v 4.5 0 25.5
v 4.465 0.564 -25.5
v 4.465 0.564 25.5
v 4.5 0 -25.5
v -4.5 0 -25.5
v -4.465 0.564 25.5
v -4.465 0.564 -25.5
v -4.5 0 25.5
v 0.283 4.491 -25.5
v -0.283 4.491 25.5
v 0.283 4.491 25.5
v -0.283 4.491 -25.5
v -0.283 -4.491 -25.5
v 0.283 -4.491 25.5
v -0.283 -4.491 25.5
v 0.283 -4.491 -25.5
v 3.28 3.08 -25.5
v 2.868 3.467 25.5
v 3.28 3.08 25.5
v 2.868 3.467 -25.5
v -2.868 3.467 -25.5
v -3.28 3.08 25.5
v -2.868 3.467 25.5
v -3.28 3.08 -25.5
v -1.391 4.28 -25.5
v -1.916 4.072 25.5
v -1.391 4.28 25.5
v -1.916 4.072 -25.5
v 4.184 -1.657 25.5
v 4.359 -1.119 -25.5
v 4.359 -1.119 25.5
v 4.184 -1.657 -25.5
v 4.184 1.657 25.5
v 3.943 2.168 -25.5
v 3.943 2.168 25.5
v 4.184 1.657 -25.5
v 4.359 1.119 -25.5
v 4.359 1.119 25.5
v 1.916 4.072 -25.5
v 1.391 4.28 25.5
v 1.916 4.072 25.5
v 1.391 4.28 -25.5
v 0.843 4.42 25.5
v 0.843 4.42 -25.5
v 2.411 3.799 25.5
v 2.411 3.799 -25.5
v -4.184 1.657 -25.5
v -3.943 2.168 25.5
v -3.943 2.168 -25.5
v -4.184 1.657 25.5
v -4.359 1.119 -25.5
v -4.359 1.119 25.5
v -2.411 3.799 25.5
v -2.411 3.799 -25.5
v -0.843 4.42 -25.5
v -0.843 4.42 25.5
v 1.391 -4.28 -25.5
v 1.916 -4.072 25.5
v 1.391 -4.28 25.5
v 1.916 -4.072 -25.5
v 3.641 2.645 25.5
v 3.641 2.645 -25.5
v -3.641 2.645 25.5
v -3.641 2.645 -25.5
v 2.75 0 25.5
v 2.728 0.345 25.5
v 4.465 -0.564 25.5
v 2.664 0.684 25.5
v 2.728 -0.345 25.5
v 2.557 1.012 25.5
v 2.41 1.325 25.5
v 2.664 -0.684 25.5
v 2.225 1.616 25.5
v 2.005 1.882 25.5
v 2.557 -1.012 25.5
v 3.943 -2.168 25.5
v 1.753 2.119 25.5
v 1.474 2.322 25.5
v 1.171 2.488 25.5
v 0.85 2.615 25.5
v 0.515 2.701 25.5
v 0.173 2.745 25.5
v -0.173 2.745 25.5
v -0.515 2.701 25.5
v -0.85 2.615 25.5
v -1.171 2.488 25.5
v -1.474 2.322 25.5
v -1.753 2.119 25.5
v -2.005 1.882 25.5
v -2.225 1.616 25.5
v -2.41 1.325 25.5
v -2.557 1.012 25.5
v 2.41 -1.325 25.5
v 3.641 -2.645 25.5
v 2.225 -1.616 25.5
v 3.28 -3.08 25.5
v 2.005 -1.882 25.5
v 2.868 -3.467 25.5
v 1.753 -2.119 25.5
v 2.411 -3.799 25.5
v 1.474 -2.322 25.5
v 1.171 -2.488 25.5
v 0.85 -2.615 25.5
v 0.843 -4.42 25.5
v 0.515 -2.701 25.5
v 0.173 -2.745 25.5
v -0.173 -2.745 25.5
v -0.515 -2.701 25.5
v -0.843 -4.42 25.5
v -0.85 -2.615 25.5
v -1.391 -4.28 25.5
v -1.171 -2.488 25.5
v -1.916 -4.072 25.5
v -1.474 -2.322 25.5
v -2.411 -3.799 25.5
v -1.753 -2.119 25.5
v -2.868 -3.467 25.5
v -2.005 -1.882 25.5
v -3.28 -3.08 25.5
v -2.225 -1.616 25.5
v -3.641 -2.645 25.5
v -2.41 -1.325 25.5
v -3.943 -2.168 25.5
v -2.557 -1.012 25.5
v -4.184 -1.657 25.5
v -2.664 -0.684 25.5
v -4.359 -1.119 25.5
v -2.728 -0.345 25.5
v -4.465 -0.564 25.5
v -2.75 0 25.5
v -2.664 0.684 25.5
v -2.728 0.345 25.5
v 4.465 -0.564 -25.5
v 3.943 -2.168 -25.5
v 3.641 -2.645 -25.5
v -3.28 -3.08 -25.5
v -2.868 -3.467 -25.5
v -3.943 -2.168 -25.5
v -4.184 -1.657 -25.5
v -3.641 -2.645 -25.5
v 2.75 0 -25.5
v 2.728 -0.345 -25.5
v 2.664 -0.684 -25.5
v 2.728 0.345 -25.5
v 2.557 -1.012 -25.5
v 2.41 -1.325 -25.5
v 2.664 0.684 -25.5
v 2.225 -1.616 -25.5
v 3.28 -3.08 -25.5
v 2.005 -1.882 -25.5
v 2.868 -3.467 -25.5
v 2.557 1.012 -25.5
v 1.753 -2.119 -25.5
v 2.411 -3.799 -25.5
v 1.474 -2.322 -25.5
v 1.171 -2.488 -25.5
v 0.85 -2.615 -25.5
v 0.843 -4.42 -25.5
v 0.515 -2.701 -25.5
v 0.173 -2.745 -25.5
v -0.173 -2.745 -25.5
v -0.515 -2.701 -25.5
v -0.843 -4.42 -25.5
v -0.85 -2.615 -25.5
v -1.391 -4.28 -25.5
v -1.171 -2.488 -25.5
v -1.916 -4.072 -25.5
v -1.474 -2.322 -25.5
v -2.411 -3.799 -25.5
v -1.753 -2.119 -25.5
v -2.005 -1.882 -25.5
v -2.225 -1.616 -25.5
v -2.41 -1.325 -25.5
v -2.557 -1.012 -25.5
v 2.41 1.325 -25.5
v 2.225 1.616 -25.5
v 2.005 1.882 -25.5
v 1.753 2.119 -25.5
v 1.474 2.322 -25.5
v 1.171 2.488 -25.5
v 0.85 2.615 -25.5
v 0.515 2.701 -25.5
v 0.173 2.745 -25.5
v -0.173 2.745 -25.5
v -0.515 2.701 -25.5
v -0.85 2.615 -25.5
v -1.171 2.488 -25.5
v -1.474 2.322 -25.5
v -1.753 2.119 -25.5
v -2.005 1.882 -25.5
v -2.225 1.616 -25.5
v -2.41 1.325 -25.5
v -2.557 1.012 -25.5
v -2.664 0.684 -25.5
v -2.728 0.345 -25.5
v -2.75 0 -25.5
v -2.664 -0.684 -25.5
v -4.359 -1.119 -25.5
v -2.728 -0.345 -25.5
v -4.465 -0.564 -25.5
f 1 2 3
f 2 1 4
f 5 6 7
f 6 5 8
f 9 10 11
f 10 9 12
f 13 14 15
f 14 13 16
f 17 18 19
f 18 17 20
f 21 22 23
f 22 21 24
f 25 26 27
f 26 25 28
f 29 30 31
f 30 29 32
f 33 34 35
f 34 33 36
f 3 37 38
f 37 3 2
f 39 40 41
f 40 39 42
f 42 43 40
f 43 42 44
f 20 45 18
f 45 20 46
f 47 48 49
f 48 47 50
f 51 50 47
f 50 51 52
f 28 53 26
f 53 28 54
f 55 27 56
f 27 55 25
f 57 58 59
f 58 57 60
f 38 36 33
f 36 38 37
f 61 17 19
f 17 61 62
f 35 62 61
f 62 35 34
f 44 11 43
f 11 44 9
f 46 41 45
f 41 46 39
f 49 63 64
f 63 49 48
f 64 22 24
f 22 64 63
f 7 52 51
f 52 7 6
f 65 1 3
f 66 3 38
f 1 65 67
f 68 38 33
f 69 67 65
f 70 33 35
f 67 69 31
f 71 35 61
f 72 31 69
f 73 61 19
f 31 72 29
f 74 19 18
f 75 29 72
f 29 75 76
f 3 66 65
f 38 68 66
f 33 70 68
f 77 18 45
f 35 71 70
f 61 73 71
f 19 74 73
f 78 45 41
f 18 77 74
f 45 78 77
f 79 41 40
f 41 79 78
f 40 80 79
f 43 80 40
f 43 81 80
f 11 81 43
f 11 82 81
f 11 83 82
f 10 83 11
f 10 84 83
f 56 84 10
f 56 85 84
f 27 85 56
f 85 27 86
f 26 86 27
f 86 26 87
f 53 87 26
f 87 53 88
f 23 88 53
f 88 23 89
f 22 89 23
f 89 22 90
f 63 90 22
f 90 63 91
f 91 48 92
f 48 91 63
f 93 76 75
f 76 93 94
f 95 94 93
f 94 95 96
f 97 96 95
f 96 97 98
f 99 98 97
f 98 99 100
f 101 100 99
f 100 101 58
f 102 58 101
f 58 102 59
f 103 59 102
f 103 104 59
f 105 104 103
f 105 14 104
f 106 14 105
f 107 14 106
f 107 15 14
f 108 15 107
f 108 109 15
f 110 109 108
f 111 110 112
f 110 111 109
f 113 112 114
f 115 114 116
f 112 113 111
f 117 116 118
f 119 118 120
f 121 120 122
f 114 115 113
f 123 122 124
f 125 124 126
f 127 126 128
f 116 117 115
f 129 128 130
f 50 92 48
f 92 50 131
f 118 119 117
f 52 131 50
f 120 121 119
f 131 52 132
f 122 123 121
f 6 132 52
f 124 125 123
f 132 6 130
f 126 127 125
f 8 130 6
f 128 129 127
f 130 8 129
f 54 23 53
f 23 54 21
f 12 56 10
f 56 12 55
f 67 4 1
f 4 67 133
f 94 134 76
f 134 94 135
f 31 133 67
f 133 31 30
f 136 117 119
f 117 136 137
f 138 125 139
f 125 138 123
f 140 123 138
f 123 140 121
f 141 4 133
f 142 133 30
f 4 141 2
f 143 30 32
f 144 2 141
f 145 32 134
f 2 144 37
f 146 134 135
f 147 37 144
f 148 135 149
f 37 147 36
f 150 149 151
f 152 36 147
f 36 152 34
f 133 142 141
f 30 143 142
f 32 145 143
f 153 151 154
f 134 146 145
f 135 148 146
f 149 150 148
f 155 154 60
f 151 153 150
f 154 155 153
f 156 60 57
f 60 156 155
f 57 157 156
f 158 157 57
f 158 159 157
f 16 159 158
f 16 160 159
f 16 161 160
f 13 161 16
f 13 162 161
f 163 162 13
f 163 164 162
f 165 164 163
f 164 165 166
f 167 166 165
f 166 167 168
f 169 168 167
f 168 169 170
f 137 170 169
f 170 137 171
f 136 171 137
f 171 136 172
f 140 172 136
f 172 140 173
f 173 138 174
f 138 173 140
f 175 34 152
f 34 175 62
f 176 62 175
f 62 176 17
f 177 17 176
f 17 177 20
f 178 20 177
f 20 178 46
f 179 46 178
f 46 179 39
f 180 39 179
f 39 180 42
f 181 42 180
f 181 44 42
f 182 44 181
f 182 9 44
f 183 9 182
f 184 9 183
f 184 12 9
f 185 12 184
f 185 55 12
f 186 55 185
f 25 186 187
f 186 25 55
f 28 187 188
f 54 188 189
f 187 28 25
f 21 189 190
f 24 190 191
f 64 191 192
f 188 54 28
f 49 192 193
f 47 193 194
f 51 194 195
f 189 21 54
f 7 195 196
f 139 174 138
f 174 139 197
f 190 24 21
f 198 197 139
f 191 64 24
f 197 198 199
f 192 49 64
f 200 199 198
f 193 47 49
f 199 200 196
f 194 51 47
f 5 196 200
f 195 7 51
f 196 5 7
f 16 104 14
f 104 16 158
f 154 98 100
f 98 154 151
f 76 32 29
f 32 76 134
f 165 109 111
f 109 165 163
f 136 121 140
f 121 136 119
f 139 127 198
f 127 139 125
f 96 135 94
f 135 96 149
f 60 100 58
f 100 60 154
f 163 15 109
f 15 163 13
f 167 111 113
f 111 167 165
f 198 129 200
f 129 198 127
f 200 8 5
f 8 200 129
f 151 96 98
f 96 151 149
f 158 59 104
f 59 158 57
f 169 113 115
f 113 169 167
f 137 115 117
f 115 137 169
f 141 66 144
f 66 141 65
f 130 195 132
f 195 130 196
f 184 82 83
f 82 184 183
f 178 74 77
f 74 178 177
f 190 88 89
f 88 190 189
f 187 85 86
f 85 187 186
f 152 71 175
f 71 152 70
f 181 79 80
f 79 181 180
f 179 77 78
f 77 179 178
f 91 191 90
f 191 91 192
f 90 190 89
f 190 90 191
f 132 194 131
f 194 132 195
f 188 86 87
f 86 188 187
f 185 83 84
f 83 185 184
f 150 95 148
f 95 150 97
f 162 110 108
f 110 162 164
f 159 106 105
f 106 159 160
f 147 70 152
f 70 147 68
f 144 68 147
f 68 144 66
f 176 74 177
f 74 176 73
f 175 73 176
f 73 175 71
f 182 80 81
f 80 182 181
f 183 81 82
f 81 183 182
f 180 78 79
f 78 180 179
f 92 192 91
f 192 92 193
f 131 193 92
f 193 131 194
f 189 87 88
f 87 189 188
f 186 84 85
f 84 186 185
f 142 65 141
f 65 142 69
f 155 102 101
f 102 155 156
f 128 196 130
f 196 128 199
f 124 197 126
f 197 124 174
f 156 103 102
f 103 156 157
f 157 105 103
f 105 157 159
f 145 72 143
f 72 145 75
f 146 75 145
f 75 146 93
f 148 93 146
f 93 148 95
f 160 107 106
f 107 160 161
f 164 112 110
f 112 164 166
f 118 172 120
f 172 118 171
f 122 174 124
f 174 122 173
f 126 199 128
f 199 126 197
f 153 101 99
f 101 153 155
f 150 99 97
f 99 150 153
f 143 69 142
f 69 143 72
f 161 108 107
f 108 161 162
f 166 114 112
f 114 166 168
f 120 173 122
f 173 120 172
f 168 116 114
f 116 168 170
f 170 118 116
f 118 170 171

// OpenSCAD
$fn = 50;


difference() {
	union() {
		translate(v = [0, 0, -25.5000000000]) {
			cylinder(h = 51, r = 4.5000000000);
		}
	}
	union() {
		translate(v = [0, 0, -100.0000000000]) {
			cylinder(h = 200, r = 2.7500000000);
		}
	}
}
